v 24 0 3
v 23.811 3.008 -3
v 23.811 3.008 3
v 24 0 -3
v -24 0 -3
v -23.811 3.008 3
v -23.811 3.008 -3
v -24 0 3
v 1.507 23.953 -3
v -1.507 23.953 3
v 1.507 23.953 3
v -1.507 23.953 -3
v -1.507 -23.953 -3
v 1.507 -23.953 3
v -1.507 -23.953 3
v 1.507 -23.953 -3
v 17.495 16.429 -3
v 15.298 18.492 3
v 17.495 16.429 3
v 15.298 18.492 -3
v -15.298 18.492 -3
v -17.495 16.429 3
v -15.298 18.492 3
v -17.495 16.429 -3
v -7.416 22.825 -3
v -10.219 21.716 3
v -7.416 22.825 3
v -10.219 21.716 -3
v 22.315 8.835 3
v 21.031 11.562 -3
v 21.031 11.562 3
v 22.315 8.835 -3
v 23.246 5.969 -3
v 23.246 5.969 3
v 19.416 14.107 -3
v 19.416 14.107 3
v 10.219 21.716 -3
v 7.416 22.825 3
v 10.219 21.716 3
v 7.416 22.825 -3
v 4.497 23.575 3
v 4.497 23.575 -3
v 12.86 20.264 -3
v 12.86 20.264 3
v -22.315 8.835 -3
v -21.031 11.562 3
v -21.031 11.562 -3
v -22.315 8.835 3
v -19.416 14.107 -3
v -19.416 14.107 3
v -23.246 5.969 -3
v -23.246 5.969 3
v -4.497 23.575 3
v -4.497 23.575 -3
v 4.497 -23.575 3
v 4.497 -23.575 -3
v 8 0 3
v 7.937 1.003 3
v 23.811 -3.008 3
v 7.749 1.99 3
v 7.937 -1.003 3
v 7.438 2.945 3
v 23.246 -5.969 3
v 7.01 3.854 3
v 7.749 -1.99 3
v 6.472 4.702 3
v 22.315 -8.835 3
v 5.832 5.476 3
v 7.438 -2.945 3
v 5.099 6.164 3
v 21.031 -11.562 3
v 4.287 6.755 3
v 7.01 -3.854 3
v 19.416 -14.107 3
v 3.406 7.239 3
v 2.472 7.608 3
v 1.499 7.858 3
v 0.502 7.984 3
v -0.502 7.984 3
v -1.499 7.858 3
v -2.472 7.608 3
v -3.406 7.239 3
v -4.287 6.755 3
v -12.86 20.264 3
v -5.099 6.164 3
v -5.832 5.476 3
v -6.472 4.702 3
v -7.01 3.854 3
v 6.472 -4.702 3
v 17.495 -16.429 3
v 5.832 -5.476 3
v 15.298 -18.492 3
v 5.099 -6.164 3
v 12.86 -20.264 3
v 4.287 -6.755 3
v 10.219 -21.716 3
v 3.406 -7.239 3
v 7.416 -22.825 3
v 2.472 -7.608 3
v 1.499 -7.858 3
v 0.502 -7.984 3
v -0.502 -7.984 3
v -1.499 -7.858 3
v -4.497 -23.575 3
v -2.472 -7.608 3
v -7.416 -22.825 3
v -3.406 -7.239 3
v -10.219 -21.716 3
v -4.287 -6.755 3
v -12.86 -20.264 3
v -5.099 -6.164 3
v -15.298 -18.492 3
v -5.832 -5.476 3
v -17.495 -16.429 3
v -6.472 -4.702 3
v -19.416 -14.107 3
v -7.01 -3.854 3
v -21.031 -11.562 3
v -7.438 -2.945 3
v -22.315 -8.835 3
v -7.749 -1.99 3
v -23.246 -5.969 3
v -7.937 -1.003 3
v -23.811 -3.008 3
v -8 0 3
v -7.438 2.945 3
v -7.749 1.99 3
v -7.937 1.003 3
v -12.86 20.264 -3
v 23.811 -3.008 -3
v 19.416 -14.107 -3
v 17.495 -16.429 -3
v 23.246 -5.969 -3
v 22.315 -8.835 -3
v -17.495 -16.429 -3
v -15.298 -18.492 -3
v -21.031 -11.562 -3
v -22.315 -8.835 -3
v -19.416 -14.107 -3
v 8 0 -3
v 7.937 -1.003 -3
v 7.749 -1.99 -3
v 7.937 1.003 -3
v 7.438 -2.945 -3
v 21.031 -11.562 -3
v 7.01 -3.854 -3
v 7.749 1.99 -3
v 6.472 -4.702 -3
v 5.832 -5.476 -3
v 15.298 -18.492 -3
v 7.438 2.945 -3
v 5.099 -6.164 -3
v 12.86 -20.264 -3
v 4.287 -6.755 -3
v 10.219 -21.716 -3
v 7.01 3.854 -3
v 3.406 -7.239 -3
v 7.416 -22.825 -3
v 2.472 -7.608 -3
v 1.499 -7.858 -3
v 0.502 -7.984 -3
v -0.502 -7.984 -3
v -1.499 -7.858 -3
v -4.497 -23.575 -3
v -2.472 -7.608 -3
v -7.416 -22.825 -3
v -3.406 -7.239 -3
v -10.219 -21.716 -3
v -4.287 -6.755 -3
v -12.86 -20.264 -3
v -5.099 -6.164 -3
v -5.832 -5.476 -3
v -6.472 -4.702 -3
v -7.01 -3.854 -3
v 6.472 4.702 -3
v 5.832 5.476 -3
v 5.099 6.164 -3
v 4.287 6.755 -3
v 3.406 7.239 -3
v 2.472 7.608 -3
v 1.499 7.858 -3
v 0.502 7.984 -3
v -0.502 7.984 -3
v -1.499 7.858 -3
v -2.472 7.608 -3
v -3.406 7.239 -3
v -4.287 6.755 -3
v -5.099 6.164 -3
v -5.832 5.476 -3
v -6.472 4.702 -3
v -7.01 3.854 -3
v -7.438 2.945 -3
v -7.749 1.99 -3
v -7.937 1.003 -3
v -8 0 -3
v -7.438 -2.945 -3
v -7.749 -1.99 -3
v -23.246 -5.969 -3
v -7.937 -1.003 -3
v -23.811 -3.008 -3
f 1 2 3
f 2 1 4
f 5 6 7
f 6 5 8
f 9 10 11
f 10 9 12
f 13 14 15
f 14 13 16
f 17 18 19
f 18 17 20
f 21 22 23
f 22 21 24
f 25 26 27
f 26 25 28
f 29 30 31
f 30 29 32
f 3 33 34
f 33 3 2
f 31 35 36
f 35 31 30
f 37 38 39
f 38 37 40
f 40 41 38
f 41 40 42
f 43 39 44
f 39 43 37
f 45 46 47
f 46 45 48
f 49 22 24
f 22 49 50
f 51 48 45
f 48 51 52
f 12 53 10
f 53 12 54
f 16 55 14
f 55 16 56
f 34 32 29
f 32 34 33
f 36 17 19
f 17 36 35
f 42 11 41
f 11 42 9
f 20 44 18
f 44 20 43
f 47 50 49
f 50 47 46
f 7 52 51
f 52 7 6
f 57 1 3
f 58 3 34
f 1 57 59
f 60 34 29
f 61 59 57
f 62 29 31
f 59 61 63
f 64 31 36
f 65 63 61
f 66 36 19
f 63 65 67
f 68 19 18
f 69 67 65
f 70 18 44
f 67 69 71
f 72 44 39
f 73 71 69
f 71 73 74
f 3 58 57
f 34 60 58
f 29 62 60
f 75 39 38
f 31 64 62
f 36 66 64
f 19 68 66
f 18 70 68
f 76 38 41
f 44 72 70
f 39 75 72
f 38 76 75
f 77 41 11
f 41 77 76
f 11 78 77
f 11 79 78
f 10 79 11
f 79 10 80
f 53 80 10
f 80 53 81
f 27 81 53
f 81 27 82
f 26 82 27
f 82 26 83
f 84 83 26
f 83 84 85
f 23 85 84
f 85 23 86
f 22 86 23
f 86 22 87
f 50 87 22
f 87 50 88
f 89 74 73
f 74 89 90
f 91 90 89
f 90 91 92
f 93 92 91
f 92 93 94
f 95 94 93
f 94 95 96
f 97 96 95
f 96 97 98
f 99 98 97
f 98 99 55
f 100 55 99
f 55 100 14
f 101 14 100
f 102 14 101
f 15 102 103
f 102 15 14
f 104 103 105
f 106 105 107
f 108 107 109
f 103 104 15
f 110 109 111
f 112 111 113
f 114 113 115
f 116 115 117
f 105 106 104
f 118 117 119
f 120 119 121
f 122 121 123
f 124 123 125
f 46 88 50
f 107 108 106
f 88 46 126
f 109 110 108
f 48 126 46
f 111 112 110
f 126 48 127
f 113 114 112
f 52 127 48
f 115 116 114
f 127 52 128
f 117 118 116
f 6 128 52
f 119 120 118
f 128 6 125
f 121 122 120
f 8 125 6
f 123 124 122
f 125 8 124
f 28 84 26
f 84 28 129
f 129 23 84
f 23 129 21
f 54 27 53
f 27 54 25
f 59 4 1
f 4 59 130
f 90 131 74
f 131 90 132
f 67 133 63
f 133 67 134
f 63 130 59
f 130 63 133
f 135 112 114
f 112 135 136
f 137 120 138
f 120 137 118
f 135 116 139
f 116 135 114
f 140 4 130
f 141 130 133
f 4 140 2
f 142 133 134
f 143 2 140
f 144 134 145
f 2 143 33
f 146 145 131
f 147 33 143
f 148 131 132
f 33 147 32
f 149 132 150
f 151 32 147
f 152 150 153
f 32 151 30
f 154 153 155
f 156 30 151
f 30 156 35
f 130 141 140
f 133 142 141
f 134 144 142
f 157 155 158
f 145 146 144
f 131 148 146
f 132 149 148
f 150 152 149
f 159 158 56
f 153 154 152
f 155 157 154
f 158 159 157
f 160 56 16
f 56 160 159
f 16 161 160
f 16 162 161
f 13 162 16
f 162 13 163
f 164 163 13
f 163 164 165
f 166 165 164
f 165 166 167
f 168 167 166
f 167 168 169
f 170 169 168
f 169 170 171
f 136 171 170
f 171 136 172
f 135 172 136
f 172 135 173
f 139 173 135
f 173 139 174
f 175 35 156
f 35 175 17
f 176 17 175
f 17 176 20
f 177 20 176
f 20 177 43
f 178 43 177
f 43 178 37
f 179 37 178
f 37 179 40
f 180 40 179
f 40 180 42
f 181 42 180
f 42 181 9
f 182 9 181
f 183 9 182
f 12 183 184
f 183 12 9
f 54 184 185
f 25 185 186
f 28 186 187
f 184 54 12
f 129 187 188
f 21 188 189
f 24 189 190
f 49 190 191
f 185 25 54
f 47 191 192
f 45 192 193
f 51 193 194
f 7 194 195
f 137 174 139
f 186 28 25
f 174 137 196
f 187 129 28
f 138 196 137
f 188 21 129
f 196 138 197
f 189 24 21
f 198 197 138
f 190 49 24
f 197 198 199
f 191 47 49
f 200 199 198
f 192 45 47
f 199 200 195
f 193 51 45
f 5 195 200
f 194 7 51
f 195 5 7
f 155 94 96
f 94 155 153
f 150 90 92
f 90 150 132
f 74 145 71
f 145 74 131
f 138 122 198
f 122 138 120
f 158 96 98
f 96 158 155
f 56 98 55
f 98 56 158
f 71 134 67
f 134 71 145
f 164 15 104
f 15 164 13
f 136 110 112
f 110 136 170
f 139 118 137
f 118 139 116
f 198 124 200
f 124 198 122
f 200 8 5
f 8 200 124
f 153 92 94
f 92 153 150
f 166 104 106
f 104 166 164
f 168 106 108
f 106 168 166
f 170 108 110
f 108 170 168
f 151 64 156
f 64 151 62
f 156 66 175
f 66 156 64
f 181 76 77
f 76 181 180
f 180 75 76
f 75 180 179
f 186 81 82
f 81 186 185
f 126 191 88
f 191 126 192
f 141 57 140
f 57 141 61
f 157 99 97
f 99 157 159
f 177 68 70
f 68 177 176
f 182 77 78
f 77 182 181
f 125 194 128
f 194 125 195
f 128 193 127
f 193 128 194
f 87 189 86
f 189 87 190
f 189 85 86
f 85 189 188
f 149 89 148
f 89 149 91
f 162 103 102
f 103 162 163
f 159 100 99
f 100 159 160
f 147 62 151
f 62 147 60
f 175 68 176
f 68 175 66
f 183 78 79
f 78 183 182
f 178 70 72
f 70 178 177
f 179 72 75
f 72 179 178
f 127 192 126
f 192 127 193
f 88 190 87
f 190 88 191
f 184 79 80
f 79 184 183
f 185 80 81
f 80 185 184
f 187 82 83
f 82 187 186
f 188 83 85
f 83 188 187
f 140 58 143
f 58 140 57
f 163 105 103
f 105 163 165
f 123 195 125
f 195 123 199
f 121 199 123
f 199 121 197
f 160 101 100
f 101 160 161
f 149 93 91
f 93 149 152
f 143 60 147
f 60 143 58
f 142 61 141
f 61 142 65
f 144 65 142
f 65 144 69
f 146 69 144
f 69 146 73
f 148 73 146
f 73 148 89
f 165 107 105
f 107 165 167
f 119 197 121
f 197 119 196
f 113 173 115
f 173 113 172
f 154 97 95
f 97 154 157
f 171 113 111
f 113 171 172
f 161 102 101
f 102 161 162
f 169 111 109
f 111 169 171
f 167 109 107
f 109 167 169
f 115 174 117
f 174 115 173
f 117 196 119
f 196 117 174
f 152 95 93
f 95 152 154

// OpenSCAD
$fn = 50;


difference() {
	union() {
		translate(v = [0, 0, -3.0000000000]) {
			cylinder(h = 6, r = 24.0000000000);
		}
	}
	union() {
		translate(v = [0, 0, -100.0000000000]) {
			cylinder(h = 200, r = 8);
		}
	}
}
